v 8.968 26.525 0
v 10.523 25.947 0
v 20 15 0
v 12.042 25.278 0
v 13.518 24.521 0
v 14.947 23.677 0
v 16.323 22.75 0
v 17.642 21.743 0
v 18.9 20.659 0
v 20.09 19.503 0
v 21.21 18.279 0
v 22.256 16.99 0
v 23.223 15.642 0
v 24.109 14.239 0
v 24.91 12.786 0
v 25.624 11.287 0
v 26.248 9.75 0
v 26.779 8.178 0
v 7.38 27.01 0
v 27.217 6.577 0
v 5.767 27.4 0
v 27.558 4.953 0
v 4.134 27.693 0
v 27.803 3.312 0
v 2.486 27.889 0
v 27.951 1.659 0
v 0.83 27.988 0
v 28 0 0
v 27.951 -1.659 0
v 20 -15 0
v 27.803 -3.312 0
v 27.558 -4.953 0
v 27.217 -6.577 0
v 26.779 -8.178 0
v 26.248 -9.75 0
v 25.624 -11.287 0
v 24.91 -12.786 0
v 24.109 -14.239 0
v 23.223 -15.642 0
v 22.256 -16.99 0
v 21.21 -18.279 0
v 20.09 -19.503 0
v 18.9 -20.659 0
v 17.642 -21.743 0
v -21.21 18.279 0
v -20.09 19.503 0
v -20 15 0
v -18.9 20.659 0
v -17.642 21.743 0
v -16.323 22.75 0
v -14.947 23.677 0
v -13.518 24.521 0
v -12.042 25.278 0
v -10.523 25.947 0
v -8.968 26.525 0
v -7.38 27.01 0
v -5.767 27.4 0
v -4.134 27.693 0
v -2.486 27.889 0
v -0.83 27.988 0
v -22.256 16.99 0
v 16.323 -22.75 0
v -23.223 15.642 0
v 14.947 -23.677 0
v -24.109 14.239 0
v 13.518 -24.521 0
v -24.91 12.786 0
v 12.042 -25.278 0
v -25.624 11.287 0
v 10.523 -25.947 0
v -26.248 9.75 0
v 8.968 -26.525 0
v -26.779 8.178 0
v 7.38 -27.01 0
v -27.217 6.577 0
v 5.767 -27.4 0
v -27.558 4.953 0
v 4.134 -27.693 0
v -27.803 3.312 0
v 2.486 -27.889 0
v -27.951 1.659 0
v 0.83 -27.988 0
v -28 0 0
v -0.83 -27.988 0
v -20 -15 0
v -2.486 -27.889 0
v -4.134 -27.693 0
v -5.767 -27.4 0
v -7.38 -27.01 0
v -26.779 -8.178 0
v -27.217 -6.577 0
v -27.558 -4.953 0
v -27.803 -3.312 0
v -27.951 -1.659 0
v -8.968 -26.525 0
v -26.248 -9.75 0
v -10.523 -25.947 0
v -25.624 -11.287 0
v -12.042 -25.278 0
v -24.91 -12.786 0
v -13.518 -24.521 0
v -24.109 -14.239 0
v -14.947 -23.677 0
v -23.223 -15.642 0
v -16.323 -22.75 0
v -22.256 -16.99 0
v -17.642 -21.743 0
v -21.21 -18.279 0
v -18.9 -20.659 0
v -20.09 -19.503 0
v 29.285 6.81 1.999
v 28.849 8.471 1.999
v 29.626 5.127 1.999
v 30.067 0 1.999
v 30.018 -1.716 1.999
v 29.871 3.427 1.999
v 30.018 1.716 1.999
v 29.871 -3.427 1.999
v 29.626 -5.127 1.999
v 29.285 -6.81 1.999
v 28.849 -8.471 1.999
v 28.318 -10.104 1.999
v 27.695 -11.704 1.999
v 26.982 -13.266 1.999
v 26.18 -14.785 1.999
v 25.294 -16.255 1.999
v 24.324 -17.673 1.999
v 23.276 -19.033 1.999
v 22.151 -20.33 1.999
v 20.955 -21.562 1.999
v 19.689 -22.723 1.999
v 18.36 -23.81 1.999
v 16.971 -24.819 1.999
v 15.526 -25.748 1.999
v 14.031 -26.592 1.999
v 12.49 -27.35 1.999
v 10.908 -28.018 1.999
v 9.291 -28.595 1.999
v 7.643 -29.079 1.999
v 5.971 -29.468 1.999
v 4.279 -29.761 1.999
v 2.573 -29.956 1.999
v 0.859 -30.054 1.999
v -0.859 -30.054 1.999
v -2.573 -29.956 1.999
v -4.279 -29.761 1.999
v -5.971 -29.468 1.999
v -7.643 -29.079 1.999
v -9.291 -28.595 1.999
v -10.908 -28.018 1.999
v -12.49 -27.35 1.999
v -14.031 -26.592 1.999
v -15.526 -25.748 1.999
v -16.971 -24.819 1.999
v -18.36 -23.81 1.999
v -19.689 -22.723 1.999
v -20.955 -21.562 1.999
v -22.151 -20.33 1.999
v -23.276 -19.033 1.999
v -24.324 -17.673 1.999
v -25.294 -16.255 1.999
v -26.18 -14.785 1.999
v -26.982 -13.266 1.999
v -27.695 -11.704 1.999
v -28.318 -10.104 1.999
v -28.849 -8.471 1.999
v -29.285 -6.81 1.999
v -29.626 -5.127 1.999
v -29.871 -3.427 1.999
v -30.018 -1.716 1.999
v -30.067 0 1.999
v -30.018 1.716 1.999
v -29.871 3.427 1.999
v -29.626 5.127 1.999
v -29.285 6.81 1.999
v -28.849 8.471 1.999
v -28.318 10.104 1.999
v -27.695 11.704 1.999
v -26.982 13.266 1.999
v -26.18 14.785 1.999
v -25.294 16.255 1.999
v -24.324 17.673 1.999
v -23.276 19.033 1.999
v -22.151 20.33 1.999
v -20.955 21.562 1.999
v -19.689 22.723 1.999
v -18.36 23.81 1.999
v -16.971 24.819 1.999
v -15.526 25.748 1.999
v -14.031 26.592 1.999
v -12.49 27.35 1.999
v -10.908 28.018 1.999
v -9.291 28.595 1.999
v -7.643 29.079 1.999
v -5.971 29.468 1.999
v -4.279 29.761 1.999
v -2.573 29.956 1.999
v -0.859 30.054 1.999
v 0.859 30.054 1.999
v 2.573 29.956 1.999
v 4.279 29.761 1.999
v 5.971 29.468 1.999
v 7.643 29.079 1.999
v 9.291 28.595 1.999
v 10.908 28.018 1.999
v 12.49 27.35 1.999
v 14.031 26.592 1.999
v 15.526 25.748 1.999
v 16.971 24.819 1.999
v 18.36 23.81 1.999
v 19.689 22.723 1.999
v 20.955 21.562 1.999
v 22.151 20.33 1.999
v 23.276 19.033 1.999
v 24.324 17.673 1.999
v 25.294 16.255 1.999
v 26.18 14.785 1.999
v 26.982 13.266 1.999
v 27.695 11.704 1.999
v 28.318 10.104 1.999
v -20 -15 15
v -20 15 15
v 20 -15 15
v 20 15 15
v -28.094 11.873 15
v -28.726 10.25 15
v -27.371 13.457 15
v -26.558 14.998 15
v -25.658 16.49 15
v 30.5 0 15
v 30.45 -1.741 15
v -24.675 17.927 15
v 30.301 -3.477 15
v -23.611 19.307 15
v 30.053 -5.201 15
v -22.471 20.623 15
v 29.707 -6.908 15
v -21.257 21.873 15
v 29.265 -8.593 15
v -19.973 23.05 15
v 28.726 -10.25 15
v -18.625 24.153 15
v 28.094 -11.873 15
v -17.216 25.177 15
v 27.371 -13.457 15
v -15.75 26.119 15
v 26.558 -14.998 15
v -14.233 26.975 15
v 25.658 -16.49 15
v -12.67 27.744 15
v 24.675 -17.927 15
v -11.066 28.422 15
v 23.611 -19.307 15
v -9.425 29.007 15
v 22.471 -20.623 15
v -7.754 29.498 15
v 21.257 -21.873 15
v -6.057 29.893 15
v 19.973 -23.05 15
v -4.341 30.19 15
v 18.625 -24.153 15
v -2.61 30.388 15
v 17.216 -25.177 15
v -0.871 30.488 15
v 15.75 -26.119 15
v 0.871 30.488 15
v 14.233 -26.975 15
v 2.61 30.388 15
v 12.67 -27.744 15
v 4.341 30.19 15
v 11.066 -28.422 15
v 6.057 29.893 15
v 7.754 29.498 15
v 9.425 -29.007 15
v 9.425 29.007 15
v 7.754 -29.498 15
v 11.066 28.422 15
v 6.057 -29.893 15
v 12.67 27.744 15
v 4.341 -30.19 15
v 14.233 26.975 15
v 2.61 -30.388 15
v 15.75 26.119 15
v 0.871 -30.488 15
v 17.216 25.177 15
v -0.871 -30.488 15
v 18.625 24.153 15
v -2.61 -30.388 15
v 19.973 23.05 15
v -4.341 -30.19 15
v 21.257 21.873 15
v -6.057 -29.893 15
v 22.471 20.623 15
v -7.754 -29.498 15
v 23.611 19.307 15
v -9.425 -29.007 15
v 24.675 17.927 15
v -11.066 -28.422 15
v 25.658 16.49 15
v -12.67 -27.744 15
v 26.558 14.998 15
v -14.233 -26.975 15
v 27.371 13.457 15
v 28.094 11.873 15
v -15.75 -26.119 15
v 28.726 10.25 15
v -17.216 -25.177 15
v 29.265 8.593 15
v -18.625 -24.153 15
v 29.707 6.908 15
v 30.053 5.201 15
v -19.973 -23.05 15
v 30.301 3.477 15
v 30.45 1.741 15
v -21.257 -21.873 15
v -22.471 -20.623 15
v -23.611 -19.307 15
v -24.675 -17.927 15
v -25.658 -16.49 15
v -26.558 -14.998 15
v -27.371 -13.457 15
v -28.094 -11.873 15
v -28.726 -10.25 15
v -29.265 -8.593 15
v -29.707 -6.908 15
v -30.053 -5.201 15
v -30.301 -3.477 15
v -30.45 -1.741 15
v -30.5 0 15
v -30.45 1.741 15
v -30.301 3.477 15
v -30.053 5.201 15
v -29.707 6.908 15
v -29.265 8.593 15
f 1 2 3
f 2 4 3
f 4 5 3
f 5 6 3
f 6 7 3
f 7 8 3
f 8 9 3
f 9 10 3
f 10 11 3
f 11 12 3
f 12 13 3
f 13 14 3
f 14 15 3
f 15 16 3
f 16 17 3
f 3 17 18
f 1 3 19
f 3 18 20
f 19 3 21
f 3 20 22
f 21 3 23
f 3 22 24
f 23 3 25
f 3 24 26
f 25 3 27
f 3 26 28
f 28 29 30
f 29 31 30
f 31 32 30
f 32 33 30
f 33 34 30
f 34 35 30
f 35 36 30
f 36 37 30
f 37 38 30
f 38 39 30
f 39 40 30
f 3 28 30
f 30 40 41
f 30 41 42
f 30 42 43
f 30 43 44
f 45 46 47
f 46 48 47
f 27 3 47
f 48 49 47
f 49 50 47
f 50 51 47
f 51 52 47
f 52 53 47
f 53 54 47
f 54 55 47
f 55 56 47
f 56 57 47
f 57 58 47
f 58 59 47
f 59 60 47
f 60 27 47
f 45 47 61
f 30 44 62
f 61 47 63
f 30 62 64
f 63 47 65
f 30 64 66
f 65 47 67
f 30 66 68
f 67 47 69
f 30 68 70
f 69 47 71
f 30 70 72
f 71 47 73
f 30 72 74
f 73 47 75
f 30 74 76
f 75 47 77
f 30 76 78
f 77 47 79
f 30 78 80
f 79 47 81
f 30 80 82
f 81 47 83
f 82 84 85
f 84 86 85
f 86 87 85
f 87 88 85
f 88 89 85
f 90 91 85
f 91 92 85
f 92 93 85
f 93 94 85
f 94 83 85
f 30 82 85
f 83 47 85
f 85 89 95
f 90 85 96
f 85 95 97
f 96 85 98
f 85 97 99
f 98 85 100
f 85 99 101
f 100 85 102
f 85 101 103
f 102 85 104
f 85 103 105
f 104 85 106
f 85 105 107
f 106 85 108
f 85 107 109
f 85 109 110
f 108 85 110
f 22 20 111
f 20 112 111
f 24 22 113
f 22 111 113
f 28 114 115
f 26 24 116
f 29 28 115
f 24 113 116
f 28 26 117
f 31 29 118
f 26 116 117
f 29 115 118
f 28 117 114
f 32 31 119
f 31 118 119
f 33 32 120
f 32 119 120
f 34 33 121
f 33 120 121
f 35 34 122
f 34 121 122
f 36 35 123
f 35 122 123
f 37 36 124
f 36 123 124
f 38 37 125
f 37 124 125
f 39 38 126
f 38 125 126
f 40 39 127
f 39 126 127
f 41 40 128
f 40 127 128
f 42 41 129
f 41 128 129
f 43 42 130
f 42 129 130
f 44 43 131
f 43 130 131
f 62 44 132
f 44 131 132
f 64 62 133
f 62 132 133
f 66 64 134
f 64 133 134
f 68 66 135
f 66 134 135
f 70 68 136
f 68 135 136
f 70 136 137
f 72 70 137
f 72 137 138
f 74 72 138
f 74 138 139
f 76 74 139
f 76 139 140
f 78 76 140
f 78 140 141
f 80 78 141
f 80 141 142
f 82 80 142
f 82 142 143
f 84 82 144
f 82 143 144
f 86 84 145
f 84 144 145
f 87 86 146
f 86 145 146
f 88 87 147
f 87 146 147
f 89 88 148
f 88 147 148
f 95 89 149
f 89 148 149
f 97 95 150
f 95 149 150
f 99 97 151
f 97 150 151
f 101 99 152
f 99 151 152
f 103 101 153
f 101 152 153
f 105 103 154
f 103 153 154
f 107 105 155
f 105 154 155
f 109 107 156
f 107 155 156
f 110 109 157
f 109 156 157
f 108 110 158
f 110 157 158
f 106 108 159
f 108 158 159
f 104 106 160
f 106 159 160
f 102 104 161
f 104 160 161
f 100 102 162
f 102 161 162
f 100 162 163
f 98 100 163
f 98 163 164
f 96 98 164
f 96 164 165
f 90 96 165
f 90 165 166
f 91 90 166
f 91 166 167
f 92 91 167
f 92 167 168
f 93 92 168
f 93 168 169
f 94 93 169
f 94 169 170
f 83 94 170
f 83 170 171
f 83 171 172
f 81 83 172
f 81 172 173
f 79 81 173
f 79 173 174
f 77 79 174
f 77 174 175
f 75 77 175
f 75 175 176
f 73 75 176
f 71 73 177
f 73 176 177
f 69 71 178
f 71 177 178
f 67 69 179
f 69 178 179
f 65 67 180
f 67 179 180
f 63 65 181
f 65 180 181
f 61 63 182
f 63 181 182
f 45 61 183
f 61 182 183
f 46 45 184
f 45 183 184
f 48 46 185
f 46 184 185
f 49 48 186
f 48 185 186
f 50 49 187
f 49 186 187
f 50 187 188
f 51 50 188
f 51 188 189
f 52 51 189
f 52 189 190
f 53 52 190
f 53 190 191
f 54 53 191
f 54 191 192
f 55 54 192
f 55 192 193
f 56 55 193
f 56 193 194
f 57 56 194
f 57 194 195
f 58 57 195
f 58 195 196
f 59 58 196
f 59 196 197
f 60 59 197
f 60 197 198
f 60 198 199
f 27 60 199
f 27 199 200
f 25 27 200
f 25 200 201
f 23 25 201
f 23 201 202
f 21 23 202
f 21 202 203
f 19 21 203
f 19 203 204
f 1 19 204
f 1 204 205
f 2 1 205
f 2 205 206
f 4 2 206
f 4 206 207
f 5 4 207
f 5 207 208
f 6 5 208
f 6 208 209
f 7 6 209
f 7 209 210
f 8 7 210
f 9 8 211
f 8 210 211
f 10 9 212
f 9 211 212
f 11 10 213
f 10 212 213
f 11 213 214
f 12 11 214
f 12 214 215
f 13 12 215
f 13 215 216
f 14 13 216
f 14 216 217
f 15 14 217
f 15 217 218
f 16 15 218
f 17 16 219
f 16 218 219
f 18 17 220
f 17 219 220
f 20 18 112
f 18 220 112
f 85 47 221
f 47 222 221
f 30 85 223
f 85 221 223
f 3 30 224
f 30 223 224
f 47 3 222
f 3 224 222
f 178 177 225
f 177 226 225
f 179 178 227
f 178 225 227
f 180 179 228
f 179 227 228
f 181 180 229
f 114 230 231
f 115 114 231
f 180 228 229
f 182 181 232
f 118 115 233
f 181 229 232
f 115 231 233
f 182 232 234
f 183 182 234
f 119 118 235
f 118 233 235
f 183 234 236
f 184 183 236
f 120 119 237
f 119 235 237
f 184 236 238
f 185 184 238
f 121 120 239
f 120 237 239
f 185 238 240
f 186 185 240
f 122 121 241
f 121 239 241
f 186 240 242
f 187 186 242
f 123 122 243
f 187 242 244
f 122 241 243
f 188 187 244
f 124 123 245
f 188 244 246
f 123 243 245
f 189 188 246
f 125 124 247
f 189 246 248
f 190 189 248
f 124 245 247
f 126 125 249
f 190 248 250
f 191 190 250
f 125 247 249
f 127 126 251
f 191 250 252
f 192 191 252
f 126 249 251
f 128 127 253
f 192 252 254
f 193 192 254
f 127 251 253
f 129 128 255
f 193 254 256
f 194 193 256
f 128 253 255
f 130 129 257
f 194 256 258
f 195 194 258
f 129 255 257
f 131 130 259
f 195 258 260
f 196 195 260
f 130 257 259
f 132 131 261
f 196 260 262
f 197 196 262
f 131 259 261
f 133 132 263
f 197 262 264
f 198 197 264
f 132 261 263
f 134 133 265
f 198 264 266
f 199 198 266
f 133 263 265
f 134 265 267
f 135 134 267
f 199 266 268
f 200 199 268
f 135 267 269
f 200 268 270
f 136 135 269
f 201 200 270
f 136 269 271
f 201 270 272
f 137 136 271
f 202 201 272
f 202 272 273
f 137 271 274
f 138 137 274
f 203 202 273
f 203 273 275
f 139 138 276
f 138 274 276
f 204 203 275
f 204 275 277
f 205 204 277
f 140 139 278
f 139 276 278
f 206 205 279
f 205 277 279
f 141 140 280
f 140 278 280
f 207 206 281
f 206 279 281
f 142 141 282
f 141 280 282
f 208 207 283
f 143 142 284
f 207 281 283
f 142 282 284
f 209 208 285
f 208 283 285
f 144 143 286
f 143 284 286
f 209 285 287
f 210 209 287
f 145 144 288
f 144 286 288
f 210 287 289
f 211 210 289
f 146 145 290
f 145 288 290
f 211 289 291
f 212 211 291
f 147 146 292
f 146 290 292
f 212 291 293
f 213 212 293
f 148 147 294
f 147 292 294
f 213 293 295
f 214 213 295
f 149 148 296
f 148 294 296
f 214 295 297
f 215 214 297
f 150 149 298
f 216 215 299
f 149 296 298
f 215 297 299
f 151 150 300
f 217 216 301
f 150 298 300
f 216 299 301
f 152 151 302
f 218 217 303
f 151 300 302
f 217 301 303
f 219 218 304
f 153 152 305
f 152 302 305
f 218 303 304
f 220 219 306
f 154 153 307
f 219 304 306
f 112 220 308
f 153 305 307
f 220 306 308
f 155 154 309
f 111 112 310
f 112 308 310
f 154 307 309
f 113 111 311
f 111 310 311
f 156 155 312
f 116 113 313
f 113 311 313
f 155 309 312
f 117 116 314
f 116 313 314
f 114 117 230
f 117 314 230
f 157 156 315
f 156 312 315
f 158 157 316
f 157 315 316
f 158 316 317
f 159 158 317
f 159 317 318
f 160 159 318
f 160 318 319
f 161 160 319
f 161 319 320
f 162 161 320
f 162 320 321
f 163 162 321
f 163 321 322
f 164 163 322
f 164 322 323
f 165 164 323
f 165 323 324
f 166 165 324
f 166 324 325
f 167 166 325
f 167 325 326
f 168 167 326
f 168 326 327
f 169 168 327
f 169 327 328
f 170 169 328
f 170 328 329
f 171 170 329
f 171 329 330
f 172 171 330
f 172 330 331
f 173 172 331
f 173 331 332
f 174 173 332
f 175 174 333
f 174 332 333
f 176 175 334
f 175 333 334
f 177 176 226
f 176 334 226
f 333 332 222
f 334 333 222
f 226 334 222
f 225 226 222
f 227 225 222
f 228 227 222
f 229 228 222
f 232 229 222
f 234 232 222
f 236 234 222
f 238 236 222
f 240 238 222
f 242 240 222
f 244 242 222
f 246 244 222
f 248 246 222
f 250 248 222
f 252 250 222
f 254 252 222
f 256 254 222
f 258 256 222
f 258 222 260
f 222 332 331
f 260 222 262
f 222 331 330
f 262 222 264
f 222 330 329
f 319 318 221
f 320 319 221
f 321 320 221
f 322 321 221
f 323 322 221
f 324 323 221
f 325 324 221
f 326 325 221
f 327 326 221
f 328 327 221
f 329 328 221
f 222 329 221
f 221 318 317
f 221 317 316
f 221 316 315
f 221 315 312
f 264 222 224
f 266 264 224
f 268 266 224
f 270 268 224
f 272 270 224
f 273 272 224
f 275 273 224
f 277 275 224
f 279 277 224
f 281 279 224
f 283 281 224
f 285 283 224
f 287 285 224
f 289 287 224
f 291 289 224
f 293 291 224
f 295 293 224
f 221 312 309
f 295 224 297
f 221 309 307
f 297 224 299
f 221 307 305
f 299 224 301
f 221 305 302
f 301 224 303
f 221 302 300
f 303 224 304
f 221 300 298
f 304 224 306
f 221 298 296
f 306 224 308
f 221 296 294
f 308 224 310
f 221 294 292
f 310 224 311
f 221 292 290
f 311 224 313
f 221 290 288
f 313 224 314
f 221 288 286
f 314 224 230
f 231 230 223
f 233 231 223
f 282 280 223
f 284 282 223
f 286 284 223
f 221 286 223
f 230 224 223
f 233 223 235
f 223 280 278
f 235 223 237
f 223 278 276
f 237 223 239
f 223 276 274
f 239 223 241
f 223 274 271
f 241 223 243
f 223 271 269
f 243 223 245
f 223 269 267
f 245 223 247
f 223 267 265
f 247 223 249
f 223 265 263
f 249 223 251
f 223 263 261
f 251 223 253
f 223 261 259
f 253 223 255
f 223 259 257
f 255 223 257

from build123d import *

# Parameters (mm, degrees)
CHAMFER_SIZE = 2
SKETCH001_W  = 40
SKETCH001_H  = 30
POCKET_DEPTH = 15.001


with BuildPart() as part:
    # Sketch → Revolution (revolve)
    with BuildSketch(Plane.XZ):
        Polygon((0, 0), (30, 0), (30.5, 15), (0, 15), align=None)
    revolve(axis=Axis((0, 0, 0), (0, 0, 1)))

    # Chamfer
    chamfer_edges = [part.edges().sort_by_distance(p)[0] for p in [
        (-30, 0, 0),
    ]]
    chamfer(chamfer_edges, length=CHAMFER_SIZE)

    # Sketch001 (on Face4 of Chamfer) → Pocket (cut, through all)
    with BuildSketch(Plane(origin=(0, 0, 15), x_dir=(-1, 0, 0), z_dir=(0, 0, 1))):
        Rectangle(SKETCH001_W, SKETCH001_H)
    extrude(amount=-POCKET_DEPTH, mode=Mode.SUBTRACT)


solid = part.part
